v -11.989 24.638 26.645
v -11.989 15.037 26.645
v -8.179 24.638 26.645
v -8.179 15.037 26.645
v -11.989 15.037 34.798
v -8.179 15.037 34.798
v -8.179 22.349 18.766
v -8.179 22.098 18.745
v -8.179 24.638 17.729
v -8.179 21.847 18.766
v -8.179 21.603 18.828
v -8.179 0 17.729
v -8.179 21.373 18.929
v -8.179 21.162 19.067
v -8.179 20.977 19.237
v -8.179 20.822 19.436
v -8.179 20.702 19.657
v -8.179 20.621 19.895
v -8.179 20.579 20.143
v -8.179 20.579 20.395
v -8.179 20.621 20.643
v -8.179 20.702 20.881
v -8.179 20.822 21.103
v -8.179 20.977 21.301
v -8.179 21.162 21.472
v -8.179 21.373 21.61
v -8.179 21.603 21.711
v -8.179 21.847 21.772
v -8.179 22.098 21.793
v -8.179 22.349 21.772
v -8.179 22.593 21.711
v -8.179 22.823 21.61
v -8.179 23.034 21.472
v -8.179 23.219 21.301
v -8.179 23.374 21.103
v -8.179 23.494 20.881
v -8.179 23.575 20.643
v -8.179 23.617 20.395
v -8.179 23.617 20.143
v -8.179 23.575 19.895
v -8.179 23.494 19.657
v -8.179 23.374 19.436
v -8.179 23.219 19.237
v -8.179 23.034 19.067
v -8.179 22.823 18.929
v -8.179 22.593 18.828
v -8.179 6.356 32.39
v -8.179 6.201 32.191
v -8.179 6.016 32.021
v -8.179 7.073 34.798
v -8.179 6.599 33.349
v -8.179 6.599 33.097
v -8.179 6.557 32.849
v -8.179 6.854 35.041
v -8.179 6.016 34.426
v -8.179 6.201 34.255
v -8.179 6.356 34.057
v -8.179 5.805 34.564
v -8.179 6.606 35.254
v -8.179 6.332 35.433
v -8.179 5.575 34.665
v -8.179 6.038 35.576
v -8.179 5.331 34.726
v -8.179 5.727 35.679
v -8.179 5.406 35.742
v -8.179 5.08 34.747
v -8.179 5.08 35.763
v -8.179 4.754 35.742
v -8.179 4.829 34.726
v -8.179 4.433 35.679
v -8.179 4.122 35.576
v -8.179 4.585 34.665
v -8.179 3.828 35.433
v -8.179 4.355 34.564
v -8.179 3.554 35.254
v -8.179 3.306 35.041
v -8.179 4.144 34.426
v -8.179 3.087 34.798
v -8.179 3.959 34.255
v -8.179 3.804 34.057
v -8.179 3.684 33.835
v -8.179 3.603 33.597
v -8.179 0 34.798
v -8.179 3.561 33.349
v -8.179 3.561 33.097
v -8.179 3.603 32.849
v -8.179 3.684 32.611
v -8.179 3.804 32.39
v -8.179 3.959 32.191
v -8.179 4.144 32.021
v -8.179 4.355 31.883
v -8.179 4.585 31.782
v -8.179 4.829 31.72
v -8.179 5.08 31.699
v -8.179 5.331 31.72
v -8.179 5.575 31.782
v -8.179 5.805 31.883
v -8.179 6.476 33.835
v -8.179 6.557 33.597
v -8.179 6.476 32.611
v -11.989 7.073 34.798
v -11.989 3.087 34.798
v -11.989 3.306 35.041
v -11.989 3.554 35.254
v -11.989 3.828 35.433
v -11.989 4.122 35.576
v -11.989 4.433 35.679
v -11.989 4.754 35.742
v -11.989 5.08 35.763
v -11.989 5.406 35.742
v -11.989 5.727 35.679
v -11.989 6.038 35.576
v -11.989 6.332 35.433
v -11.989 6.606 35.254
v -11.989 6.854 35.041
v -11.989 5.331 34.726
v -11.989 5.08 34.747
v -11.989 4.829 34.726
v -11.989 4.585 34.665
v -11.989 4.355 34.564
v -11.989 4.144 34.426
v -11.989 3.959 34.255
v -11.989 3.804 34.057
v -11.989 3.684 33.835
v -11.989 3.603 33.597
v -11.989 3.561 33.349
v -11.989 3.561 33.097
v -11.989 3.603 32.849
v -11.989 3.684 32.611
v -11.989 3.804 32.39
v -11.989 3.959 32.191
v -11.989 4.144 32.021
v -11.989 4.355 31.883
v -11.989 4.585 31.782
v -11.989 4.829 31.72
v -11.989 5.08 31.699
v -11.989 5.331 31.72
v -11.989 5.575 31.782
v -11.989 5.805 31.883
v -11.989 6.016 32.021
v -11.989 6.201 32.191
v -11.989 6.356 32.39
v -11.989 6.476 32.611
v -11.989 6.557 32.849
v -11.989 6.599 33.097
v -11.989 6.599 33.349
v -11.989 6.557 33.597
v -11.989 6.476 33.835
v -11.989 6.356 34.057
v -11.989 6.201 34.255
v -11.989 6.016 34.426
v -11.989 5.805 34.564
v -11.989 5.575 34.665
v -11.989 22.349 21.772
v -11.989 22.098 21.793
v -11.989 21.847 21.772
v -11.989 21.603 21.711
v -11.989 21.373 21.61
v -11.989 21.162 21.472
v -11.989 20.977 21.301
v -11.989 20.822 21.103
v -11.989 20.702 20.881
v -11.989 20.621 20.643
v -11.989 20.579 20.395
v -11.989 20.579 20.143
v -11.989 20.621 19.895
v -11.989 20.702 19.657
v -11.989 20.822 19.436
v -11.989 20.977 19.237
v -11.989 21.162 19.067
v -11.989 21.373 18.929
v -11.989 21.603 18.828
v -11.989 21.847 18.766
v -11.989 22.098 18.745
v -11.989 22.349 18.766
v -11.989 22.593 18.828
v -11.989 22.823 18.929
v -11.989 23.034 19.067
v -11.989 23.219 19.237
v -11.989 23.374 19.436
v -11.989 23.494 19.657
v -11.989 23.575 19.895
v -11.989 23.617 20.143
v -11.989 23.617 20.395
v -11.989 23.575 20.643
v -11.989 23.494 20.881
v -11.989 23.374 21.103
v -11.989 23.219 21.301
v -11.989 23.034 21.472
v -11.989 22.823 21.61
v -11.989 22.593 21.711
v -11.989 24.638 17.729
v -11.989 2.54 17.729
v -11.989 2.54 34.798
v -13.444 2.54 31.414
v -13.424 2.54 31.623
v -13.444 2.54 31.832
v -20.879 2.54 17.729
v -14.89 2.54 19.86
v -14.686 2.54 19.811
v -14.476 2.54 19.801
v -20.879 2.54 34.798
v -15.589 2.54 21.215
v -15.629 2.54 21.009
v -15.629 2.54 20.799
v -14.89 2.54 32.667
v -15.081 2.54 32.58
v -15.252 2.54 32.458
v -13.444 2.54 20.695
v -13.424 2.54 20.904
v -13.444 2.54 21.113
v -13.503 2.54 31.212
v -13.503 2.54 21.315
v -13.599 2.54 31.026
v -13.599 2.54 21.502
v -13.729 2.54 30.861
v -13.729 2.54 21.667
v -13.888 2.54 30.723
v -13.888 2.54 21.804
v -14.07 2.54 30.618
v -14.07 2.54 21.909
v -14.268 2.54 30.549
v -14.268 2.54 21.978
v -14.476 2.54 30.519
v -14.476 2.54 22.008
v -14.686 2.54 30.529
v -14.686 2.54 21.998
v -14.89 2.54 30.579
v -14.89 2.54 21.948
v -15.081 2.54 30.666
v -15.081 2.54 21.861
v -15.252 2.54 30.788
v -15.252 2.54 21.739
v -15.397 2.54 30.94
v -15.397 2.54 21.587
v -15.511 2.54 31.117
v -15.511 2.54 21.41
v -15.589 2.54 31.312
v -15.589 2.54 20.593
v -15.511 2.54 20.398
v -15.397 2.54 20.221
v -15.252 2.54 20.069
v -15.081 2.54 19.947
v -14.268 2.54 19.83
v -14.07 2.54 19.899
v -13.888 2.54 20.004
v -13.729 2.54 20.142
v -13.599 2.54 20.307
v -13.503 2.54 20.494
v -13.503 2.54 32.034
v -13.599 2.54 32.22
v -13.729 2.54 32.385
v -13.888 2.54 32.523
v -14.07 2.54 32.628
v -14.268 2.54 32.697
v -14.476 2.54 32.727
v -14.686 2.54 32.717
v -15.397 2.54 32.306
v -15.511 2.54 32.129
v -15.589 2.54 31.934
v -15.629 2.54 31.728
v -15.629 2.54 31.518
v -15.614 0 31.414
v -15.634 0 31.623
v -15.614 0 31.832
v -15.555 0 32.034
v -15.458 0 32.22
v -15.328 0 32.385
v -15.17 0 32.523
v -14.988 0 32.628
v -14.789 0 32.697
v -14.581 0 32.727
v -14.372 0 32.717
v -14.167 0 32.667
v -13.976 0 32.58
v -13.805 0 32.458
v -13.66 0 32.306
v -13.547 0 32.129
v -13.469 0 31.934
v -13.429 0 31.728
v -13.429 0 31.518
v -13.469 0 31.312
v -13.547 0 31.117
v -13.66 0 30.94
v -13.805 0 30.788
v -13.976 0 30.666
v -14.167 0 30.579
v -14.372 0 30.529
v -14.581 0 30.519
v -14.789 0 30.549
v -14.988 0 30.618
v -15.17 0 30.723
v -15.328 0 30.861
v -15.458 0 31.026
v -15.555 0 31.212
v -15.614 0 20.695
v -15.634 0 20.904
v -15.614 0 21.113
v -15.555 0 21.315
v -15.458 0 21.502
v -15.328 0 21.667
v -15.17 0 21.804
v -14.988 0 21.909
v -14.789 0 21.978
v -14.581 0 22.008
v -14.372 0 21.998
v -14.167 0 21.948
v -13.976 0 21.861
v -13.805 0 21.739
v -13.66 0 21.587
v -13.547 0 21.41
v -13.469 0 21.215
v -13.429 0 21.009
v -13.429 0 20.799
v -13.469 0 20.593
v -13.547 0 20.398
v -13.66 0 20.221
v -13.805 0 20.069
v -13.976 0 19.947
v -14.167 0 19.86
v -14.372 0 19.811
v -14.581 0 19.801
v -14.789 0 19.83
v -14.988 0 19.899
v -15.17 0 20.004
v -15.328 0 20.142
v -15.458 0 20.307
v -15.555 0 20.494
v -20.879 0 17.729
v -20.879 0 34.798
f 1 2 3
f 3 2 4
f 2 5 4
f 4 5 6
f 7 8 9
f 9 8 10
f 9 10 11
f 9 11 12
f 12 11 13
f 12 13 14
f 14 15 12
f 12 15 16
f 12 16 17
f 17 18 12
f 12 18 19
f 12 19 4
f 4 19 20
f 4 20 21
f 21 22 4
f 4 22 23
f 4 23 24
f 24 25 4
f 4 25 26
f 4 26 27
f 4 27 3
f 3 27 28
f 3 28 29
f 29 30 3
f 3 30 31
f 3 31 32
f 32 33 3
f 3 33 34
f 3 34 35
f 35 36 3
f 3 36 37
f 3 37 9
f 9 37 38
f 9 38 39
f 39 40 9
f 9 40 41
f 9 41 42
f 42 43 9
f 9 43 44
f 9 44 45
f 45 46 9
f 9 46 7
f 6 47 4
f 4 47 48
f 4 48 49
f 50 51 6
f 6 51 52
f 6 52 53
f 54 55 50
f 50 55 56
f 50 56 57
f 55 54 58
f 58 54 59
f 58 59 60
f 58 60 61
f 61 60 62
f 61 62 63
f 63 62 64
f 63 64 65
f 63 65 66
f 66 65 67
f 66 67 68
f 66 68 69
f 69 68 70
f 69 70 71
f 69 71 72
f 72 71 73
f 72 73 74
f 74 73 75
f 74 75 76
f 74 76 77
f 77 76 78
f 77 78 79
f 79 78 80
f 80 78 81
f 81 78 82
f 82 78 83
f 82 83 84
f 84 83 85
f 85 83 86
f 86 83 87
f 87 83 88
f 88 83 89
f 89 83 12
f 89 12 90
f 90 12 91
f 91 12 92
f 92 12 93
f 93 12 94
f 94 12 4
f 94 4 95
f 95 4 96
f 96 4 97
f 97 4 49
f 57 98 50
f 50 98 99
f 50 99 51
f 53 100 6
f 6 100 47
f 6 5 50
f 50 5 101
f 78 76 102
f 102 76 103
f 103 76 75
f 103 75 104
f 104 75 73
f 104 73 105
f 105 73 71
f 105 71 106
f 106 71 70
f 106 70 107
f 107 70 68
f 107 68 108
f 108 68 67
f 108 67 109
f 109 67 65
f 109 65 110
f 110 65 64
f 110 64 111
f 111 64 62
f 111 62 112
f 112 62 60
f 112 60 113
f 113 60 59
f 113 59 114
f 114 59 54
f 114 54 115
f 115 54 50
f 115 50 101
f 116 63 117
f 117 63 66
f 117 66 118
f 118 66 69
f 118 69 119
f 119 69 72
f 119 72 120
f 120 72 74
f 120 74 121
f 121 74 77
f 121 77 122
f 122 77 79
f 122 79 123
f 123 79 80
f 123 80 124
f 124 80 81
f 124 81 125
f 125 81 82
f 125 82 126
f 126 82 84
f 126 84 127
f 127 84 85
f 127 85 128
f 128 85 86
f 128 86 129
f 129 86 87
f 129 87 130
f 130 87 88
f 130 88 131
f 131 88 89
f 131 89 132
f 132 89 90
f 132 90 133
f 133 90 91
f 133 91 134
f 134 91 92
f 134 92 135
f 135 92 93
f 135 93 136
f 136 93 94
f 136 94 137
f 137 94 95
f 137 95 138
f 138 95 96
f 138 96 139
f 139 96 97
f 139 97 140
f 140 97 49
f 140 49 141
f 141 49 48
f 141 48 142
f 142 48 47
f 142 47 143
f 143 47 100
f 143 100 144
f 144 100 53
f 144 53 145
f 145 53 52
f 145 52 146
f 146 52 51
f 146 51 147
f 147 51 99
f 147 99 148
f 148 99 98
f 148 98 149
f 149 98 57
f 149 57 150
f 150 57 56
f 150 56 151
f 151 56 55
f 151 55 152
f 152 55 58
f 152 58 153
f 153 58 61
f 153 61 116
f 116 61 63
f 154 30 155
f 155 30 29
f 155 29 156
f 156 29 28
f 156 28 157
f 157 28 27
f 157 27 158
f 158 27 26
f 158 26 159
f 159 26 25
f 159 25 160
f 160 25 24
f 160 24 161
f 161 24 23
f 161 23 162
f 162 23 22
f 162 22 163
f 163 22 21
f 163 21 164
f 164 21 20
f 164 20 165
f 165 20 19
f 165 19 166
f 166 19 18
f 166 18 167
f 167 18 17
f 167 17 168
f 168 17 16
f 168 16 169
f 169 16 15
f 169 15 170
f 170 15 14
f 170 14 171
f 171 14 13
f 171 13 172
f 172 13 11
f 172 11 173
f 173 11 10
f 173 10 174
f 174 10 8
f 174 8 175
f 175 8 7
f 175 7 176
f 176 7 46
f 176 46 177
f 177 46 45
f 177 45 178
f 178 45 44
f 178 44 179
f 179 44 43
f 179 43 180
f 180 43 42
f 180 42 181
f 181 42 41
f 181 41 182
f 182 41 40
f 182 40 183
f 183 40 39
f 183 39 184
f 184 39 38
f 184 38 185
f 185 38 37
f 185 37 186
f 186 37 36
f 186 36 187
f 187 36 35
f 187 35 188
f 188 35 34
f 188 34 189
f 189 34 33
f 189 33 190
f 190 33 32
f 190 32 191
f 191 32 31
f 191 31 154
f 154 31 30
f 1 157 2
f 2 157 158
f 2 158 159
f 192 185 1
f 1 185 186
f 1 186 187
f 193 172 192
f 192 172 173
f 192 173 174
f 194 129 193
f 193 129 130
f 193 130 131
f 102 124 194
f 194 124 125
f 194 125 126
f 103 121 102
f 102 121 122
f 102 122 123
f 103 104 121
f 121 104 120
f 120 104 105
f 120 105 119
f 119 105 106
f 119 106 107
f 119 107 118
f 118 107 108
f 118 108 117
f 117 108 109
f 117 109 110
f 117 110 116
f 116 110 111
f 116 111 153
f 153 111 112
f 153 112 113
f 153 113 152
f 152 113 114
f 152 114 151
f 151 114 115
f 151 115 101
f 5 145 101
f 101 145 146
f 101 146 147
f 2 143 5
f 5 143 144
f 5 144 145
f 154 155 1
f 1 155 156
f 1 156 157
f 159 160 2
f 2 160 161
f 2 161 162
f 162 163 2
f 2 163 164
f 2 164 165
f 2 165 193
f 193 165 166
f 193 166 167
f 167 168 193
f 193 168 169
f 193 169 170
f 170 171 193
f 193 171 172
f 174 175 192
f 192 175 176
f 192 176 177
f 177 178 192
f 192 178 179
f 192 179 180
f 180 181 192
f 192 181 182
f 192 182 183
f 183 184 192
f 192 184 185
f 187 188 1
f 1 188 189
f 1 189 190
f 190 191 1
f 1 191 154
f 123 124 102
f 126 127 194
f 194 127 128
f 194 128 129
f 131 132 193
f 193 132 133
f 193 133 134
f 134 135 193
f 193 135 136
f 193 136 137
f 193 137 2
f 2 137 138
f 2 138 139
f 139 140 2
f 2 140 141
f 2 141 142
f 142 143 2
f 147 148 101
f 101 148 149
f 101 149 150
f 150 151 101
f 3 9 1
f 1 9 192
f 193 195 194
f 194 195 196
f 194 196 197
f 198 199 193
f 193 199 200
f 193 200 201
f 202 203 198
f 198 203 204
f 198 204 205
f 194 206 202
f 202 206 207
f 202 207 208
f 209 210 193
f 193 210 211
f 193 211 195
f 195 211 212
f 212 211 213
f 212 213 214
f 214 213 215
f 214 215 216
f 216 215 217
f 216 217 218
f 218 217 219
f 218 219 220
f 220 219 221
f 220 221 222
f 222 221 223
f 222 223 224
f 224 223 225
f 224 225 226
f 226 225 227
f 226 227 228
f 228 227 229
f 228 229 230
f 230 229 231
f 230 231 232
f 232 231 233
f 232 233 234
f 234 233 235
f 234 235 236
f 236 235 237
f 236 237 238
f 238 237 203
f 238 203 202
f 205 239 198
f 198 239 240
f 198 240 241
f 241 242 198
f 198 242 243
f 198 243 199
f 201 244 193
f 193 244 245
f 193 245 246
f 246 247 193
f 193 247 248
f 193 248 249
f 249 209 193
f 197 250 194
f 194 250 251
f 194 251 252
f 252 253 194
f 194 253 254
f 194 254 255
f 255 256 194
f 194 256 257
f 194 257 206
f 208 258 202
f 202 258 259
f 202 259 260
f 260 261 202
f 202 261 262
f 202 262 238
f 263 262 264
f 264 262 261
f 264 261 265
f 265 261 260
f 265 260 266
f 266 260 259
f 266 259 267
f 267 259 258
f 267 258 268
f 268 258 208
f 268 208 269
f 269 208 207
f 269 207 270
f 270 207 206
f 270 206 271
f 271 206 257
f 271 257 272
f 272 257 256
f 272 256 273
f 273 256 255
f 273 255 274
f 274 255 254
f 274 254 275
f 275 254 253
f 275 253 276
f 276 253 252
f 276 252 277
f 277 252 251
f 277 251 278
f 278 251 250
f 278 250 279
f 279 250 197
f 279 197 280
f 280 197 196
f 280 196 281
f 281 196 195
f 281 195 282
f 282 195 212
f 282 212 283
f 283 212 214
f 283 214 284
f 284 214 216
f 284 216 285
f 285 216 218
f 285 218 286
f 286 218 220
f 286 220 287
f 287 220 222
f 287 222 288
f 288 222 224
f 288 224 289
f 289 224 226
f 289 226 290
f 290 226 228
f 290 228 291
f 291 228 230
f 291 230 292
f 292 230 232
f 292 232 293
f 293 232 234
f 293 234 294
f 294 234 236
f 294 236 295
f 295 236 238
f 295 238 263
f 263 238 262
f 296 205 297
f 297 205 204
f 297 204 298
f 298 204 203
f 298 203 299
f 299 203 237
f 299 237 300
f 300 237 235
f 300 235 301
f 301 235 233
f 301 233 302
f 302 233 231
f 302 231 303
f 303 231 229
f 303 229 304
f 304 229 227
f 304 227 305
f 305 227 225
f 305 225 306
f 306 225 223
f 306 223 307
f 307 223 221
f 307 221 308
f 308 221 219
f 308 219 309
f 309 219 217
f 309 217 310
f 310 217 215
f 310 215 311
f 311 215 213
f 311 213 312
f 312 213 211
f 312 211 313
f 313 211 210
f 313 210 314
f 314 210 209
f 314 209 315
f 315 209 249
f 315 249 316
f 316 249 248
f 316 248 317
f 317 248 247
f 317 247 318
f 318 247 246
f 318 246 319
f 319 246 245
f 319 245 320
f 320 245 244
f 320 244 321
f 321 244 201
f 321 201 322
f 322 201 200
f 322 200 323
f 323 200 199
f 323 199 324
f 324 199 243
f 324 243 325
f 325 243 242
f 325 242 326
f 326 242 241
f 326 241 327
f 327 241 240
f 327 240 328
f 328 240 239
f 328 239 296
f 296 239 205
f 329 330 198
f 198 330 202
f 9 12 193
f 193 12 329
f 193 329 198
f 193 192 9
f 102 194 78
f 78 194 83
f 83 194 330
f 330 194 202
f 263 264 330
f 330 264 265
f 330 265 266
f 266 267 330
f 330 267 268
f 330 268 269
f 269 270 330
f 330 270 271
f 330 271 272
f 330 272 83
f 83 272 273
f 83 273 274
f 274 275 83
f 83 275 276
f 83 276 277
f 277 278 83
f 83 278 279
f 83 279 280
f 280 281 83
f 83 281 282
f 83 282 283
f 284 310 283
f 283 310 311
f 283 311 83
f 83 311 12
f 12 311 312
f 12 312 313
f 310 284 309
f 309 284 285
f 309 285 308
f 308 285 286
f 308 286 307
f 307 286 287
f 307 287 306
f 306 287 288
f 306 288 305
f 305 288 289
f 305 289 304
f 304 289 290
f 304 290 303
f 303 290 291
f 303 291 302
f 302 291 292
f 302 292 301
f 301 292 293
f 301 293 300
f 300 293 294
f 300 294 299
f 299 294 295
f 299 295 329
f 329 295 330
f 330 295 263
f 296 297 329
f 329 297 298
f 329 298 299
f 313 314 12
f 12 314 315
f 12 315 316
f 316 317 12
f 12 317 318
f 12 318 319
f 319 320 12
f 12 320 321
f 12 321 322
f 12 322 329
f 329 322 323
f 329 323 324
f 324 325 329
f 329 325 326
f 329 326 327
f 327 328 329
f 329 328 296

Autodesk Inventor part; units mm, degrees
ref_plane "YZ Plane" through (0, 0, 0) normal (1, 0, 0) x (0, 1, 0)
ref_plane "XZ Plane" through (0, 0, 0) normal (0, 1, 0) x (-1, 0, 0)
ref_plane "XY Plane" through (0, 0, 0) normal (0, 0, 1) x (1, 0, 0)
sketch "Sketch1" plane through (0, 0, 0) normal (0, 1, 0) x (-1, 0, 0)
  line L0 (20.8788, 34.798) -> (8.1788, 34.798)
  line L1 (8.1788, 34.798) -> (8.1788, 17.7292)
  line L2 (8.1788, 17.7292) -> (20.8788, 17.7292)
  line L3 (20.8788, 17.7292) -> (20.8788, 34.798)
  point P0 (0, 0)
  dimension "d0" = 17.0688
  dimension "d1" = 12.7
extrude "Extrusion1" add sketch "Sketch1" along normal blind 2.54
sketch "Sketch2" plane through (0, 2.54, 0) normal (0, 1, 0) x (1, 0, 0)
  line L0 (-8.1788, -17.7292) -> (-20.8788, -17.7292) projected
  line L1 (-20.8788, -34.798) -> (-8.1788, -34.798) projected
  line L2 (-20.8788, -17.7292) -> (-20.8788, -34.798) projected
  point P0 (0, 0)
  point P1 (-14.5288, -31.623)
  point P2 (-14.5288, -20.9042)
  dimension "d5" = 3.175
  dimension "d6" = 3.175
  dimension "d14" = 6.35
  dimension "d15" = 6.35
hole "Hole1" at (-14.5288, 2.54, 31.623) at (-14.5288, 2.54, 20.9042) direction (0, -1, 0) diameter 2.2098 end through all
sketch "Sketch4" plane through (0, 2.54, 0) normal (0, 1, 0) x (1, 0, 0)
  line L0 (-8.1788, -34.798) -> (-8.1788, -17.7292) projected
  line L1 (-20.8788, -34.798) -> (-8.1788, -34.798) projected
  line L2 (-8.1788, -17.7292) -> (-11.9888, -17.7292)
  line L3 (-11.9888, -17.7292) -> (-11.9888, -34.798)
  line L4 (-11.9888, -34.798) -> (-8.1788, -34.798)
  line L5 (-8.1788, -34.798) -> (-8.1788, -17.7292)
  point P0 (0, 0)
  dimension "d16" = 3.81
extrude "Extrusion2" add sketch "Sketch4" along normal blind 22.098
sketch "Sketch5" plane through (-8.1788, 0, 34.798) normal (1, 0, 0) x (0, 0, -1)
  line L0 (0, 24.638) -> (17.0688, 24.638) projected
  line L1 (0, 0) -> (0, 24.638) projected
  line L2 (17.0688, 0) -> (17.0688, 24.638) projected
  point P0 (34.798, 0)
  point P1 (1.5748, 5.08)
  point P2 (14.5288, 22.098)
  dimension "d26" = 2.54
  dimension "d27" = 2.54
  dimension "d29" = 17.018
  dimension "d31" = 15.494
hole "Hole2" at (-8.1788, 5.08, 33.2232) at (-8.1788, 22.098, 20.2692) direction (-1, 0, 0) diameter 3.048 end through all
sketch "Sketch6" plane through (-8.1788, 0, 34.798) normal (1, 0, 0) x (0, 0, -1)
  circle A0 centre (1.5748, 5.08) radius 2.54
  circle A1 centre (1.5748, 5.08) radius 1.524 projected
  point P0 (34.798, 0)
  dimension "d51" = 5.08
extrude "Extrusion3" add sketch "Sketch6" against normal up to surface (3.81 mm away)
sketch "Sketch7" plane through (-8.1788, 0, 34.798) normal (1, 0, 0) x (0, 0, -1)
  line L0 (0, 24.638) -> (17.0688, 24.638) projected
  line L1 (0, 24.638) -> (8.1534, 24.638)
  line L2 (8.1534, 24.638) -> (8.1534, 15.0368)
  line L3 (8.1534, 15.0368) -> (0, 15.0368)
  line L4 (0, 15.0368) -> (0, 24.638)
  line L5 (17.0688, 0) -> (17.0688, 24.638) projected
  line L6 (0, 7.0729) -> (0, 24.638) projected
  dimension "d44" = 9.6012
  dimension "d46" = 8.9154
extrude "Extrusion4" cut sketch "Sketch7" against normal blind 22.098
properties part number "Ultrasonic MoUnt"
